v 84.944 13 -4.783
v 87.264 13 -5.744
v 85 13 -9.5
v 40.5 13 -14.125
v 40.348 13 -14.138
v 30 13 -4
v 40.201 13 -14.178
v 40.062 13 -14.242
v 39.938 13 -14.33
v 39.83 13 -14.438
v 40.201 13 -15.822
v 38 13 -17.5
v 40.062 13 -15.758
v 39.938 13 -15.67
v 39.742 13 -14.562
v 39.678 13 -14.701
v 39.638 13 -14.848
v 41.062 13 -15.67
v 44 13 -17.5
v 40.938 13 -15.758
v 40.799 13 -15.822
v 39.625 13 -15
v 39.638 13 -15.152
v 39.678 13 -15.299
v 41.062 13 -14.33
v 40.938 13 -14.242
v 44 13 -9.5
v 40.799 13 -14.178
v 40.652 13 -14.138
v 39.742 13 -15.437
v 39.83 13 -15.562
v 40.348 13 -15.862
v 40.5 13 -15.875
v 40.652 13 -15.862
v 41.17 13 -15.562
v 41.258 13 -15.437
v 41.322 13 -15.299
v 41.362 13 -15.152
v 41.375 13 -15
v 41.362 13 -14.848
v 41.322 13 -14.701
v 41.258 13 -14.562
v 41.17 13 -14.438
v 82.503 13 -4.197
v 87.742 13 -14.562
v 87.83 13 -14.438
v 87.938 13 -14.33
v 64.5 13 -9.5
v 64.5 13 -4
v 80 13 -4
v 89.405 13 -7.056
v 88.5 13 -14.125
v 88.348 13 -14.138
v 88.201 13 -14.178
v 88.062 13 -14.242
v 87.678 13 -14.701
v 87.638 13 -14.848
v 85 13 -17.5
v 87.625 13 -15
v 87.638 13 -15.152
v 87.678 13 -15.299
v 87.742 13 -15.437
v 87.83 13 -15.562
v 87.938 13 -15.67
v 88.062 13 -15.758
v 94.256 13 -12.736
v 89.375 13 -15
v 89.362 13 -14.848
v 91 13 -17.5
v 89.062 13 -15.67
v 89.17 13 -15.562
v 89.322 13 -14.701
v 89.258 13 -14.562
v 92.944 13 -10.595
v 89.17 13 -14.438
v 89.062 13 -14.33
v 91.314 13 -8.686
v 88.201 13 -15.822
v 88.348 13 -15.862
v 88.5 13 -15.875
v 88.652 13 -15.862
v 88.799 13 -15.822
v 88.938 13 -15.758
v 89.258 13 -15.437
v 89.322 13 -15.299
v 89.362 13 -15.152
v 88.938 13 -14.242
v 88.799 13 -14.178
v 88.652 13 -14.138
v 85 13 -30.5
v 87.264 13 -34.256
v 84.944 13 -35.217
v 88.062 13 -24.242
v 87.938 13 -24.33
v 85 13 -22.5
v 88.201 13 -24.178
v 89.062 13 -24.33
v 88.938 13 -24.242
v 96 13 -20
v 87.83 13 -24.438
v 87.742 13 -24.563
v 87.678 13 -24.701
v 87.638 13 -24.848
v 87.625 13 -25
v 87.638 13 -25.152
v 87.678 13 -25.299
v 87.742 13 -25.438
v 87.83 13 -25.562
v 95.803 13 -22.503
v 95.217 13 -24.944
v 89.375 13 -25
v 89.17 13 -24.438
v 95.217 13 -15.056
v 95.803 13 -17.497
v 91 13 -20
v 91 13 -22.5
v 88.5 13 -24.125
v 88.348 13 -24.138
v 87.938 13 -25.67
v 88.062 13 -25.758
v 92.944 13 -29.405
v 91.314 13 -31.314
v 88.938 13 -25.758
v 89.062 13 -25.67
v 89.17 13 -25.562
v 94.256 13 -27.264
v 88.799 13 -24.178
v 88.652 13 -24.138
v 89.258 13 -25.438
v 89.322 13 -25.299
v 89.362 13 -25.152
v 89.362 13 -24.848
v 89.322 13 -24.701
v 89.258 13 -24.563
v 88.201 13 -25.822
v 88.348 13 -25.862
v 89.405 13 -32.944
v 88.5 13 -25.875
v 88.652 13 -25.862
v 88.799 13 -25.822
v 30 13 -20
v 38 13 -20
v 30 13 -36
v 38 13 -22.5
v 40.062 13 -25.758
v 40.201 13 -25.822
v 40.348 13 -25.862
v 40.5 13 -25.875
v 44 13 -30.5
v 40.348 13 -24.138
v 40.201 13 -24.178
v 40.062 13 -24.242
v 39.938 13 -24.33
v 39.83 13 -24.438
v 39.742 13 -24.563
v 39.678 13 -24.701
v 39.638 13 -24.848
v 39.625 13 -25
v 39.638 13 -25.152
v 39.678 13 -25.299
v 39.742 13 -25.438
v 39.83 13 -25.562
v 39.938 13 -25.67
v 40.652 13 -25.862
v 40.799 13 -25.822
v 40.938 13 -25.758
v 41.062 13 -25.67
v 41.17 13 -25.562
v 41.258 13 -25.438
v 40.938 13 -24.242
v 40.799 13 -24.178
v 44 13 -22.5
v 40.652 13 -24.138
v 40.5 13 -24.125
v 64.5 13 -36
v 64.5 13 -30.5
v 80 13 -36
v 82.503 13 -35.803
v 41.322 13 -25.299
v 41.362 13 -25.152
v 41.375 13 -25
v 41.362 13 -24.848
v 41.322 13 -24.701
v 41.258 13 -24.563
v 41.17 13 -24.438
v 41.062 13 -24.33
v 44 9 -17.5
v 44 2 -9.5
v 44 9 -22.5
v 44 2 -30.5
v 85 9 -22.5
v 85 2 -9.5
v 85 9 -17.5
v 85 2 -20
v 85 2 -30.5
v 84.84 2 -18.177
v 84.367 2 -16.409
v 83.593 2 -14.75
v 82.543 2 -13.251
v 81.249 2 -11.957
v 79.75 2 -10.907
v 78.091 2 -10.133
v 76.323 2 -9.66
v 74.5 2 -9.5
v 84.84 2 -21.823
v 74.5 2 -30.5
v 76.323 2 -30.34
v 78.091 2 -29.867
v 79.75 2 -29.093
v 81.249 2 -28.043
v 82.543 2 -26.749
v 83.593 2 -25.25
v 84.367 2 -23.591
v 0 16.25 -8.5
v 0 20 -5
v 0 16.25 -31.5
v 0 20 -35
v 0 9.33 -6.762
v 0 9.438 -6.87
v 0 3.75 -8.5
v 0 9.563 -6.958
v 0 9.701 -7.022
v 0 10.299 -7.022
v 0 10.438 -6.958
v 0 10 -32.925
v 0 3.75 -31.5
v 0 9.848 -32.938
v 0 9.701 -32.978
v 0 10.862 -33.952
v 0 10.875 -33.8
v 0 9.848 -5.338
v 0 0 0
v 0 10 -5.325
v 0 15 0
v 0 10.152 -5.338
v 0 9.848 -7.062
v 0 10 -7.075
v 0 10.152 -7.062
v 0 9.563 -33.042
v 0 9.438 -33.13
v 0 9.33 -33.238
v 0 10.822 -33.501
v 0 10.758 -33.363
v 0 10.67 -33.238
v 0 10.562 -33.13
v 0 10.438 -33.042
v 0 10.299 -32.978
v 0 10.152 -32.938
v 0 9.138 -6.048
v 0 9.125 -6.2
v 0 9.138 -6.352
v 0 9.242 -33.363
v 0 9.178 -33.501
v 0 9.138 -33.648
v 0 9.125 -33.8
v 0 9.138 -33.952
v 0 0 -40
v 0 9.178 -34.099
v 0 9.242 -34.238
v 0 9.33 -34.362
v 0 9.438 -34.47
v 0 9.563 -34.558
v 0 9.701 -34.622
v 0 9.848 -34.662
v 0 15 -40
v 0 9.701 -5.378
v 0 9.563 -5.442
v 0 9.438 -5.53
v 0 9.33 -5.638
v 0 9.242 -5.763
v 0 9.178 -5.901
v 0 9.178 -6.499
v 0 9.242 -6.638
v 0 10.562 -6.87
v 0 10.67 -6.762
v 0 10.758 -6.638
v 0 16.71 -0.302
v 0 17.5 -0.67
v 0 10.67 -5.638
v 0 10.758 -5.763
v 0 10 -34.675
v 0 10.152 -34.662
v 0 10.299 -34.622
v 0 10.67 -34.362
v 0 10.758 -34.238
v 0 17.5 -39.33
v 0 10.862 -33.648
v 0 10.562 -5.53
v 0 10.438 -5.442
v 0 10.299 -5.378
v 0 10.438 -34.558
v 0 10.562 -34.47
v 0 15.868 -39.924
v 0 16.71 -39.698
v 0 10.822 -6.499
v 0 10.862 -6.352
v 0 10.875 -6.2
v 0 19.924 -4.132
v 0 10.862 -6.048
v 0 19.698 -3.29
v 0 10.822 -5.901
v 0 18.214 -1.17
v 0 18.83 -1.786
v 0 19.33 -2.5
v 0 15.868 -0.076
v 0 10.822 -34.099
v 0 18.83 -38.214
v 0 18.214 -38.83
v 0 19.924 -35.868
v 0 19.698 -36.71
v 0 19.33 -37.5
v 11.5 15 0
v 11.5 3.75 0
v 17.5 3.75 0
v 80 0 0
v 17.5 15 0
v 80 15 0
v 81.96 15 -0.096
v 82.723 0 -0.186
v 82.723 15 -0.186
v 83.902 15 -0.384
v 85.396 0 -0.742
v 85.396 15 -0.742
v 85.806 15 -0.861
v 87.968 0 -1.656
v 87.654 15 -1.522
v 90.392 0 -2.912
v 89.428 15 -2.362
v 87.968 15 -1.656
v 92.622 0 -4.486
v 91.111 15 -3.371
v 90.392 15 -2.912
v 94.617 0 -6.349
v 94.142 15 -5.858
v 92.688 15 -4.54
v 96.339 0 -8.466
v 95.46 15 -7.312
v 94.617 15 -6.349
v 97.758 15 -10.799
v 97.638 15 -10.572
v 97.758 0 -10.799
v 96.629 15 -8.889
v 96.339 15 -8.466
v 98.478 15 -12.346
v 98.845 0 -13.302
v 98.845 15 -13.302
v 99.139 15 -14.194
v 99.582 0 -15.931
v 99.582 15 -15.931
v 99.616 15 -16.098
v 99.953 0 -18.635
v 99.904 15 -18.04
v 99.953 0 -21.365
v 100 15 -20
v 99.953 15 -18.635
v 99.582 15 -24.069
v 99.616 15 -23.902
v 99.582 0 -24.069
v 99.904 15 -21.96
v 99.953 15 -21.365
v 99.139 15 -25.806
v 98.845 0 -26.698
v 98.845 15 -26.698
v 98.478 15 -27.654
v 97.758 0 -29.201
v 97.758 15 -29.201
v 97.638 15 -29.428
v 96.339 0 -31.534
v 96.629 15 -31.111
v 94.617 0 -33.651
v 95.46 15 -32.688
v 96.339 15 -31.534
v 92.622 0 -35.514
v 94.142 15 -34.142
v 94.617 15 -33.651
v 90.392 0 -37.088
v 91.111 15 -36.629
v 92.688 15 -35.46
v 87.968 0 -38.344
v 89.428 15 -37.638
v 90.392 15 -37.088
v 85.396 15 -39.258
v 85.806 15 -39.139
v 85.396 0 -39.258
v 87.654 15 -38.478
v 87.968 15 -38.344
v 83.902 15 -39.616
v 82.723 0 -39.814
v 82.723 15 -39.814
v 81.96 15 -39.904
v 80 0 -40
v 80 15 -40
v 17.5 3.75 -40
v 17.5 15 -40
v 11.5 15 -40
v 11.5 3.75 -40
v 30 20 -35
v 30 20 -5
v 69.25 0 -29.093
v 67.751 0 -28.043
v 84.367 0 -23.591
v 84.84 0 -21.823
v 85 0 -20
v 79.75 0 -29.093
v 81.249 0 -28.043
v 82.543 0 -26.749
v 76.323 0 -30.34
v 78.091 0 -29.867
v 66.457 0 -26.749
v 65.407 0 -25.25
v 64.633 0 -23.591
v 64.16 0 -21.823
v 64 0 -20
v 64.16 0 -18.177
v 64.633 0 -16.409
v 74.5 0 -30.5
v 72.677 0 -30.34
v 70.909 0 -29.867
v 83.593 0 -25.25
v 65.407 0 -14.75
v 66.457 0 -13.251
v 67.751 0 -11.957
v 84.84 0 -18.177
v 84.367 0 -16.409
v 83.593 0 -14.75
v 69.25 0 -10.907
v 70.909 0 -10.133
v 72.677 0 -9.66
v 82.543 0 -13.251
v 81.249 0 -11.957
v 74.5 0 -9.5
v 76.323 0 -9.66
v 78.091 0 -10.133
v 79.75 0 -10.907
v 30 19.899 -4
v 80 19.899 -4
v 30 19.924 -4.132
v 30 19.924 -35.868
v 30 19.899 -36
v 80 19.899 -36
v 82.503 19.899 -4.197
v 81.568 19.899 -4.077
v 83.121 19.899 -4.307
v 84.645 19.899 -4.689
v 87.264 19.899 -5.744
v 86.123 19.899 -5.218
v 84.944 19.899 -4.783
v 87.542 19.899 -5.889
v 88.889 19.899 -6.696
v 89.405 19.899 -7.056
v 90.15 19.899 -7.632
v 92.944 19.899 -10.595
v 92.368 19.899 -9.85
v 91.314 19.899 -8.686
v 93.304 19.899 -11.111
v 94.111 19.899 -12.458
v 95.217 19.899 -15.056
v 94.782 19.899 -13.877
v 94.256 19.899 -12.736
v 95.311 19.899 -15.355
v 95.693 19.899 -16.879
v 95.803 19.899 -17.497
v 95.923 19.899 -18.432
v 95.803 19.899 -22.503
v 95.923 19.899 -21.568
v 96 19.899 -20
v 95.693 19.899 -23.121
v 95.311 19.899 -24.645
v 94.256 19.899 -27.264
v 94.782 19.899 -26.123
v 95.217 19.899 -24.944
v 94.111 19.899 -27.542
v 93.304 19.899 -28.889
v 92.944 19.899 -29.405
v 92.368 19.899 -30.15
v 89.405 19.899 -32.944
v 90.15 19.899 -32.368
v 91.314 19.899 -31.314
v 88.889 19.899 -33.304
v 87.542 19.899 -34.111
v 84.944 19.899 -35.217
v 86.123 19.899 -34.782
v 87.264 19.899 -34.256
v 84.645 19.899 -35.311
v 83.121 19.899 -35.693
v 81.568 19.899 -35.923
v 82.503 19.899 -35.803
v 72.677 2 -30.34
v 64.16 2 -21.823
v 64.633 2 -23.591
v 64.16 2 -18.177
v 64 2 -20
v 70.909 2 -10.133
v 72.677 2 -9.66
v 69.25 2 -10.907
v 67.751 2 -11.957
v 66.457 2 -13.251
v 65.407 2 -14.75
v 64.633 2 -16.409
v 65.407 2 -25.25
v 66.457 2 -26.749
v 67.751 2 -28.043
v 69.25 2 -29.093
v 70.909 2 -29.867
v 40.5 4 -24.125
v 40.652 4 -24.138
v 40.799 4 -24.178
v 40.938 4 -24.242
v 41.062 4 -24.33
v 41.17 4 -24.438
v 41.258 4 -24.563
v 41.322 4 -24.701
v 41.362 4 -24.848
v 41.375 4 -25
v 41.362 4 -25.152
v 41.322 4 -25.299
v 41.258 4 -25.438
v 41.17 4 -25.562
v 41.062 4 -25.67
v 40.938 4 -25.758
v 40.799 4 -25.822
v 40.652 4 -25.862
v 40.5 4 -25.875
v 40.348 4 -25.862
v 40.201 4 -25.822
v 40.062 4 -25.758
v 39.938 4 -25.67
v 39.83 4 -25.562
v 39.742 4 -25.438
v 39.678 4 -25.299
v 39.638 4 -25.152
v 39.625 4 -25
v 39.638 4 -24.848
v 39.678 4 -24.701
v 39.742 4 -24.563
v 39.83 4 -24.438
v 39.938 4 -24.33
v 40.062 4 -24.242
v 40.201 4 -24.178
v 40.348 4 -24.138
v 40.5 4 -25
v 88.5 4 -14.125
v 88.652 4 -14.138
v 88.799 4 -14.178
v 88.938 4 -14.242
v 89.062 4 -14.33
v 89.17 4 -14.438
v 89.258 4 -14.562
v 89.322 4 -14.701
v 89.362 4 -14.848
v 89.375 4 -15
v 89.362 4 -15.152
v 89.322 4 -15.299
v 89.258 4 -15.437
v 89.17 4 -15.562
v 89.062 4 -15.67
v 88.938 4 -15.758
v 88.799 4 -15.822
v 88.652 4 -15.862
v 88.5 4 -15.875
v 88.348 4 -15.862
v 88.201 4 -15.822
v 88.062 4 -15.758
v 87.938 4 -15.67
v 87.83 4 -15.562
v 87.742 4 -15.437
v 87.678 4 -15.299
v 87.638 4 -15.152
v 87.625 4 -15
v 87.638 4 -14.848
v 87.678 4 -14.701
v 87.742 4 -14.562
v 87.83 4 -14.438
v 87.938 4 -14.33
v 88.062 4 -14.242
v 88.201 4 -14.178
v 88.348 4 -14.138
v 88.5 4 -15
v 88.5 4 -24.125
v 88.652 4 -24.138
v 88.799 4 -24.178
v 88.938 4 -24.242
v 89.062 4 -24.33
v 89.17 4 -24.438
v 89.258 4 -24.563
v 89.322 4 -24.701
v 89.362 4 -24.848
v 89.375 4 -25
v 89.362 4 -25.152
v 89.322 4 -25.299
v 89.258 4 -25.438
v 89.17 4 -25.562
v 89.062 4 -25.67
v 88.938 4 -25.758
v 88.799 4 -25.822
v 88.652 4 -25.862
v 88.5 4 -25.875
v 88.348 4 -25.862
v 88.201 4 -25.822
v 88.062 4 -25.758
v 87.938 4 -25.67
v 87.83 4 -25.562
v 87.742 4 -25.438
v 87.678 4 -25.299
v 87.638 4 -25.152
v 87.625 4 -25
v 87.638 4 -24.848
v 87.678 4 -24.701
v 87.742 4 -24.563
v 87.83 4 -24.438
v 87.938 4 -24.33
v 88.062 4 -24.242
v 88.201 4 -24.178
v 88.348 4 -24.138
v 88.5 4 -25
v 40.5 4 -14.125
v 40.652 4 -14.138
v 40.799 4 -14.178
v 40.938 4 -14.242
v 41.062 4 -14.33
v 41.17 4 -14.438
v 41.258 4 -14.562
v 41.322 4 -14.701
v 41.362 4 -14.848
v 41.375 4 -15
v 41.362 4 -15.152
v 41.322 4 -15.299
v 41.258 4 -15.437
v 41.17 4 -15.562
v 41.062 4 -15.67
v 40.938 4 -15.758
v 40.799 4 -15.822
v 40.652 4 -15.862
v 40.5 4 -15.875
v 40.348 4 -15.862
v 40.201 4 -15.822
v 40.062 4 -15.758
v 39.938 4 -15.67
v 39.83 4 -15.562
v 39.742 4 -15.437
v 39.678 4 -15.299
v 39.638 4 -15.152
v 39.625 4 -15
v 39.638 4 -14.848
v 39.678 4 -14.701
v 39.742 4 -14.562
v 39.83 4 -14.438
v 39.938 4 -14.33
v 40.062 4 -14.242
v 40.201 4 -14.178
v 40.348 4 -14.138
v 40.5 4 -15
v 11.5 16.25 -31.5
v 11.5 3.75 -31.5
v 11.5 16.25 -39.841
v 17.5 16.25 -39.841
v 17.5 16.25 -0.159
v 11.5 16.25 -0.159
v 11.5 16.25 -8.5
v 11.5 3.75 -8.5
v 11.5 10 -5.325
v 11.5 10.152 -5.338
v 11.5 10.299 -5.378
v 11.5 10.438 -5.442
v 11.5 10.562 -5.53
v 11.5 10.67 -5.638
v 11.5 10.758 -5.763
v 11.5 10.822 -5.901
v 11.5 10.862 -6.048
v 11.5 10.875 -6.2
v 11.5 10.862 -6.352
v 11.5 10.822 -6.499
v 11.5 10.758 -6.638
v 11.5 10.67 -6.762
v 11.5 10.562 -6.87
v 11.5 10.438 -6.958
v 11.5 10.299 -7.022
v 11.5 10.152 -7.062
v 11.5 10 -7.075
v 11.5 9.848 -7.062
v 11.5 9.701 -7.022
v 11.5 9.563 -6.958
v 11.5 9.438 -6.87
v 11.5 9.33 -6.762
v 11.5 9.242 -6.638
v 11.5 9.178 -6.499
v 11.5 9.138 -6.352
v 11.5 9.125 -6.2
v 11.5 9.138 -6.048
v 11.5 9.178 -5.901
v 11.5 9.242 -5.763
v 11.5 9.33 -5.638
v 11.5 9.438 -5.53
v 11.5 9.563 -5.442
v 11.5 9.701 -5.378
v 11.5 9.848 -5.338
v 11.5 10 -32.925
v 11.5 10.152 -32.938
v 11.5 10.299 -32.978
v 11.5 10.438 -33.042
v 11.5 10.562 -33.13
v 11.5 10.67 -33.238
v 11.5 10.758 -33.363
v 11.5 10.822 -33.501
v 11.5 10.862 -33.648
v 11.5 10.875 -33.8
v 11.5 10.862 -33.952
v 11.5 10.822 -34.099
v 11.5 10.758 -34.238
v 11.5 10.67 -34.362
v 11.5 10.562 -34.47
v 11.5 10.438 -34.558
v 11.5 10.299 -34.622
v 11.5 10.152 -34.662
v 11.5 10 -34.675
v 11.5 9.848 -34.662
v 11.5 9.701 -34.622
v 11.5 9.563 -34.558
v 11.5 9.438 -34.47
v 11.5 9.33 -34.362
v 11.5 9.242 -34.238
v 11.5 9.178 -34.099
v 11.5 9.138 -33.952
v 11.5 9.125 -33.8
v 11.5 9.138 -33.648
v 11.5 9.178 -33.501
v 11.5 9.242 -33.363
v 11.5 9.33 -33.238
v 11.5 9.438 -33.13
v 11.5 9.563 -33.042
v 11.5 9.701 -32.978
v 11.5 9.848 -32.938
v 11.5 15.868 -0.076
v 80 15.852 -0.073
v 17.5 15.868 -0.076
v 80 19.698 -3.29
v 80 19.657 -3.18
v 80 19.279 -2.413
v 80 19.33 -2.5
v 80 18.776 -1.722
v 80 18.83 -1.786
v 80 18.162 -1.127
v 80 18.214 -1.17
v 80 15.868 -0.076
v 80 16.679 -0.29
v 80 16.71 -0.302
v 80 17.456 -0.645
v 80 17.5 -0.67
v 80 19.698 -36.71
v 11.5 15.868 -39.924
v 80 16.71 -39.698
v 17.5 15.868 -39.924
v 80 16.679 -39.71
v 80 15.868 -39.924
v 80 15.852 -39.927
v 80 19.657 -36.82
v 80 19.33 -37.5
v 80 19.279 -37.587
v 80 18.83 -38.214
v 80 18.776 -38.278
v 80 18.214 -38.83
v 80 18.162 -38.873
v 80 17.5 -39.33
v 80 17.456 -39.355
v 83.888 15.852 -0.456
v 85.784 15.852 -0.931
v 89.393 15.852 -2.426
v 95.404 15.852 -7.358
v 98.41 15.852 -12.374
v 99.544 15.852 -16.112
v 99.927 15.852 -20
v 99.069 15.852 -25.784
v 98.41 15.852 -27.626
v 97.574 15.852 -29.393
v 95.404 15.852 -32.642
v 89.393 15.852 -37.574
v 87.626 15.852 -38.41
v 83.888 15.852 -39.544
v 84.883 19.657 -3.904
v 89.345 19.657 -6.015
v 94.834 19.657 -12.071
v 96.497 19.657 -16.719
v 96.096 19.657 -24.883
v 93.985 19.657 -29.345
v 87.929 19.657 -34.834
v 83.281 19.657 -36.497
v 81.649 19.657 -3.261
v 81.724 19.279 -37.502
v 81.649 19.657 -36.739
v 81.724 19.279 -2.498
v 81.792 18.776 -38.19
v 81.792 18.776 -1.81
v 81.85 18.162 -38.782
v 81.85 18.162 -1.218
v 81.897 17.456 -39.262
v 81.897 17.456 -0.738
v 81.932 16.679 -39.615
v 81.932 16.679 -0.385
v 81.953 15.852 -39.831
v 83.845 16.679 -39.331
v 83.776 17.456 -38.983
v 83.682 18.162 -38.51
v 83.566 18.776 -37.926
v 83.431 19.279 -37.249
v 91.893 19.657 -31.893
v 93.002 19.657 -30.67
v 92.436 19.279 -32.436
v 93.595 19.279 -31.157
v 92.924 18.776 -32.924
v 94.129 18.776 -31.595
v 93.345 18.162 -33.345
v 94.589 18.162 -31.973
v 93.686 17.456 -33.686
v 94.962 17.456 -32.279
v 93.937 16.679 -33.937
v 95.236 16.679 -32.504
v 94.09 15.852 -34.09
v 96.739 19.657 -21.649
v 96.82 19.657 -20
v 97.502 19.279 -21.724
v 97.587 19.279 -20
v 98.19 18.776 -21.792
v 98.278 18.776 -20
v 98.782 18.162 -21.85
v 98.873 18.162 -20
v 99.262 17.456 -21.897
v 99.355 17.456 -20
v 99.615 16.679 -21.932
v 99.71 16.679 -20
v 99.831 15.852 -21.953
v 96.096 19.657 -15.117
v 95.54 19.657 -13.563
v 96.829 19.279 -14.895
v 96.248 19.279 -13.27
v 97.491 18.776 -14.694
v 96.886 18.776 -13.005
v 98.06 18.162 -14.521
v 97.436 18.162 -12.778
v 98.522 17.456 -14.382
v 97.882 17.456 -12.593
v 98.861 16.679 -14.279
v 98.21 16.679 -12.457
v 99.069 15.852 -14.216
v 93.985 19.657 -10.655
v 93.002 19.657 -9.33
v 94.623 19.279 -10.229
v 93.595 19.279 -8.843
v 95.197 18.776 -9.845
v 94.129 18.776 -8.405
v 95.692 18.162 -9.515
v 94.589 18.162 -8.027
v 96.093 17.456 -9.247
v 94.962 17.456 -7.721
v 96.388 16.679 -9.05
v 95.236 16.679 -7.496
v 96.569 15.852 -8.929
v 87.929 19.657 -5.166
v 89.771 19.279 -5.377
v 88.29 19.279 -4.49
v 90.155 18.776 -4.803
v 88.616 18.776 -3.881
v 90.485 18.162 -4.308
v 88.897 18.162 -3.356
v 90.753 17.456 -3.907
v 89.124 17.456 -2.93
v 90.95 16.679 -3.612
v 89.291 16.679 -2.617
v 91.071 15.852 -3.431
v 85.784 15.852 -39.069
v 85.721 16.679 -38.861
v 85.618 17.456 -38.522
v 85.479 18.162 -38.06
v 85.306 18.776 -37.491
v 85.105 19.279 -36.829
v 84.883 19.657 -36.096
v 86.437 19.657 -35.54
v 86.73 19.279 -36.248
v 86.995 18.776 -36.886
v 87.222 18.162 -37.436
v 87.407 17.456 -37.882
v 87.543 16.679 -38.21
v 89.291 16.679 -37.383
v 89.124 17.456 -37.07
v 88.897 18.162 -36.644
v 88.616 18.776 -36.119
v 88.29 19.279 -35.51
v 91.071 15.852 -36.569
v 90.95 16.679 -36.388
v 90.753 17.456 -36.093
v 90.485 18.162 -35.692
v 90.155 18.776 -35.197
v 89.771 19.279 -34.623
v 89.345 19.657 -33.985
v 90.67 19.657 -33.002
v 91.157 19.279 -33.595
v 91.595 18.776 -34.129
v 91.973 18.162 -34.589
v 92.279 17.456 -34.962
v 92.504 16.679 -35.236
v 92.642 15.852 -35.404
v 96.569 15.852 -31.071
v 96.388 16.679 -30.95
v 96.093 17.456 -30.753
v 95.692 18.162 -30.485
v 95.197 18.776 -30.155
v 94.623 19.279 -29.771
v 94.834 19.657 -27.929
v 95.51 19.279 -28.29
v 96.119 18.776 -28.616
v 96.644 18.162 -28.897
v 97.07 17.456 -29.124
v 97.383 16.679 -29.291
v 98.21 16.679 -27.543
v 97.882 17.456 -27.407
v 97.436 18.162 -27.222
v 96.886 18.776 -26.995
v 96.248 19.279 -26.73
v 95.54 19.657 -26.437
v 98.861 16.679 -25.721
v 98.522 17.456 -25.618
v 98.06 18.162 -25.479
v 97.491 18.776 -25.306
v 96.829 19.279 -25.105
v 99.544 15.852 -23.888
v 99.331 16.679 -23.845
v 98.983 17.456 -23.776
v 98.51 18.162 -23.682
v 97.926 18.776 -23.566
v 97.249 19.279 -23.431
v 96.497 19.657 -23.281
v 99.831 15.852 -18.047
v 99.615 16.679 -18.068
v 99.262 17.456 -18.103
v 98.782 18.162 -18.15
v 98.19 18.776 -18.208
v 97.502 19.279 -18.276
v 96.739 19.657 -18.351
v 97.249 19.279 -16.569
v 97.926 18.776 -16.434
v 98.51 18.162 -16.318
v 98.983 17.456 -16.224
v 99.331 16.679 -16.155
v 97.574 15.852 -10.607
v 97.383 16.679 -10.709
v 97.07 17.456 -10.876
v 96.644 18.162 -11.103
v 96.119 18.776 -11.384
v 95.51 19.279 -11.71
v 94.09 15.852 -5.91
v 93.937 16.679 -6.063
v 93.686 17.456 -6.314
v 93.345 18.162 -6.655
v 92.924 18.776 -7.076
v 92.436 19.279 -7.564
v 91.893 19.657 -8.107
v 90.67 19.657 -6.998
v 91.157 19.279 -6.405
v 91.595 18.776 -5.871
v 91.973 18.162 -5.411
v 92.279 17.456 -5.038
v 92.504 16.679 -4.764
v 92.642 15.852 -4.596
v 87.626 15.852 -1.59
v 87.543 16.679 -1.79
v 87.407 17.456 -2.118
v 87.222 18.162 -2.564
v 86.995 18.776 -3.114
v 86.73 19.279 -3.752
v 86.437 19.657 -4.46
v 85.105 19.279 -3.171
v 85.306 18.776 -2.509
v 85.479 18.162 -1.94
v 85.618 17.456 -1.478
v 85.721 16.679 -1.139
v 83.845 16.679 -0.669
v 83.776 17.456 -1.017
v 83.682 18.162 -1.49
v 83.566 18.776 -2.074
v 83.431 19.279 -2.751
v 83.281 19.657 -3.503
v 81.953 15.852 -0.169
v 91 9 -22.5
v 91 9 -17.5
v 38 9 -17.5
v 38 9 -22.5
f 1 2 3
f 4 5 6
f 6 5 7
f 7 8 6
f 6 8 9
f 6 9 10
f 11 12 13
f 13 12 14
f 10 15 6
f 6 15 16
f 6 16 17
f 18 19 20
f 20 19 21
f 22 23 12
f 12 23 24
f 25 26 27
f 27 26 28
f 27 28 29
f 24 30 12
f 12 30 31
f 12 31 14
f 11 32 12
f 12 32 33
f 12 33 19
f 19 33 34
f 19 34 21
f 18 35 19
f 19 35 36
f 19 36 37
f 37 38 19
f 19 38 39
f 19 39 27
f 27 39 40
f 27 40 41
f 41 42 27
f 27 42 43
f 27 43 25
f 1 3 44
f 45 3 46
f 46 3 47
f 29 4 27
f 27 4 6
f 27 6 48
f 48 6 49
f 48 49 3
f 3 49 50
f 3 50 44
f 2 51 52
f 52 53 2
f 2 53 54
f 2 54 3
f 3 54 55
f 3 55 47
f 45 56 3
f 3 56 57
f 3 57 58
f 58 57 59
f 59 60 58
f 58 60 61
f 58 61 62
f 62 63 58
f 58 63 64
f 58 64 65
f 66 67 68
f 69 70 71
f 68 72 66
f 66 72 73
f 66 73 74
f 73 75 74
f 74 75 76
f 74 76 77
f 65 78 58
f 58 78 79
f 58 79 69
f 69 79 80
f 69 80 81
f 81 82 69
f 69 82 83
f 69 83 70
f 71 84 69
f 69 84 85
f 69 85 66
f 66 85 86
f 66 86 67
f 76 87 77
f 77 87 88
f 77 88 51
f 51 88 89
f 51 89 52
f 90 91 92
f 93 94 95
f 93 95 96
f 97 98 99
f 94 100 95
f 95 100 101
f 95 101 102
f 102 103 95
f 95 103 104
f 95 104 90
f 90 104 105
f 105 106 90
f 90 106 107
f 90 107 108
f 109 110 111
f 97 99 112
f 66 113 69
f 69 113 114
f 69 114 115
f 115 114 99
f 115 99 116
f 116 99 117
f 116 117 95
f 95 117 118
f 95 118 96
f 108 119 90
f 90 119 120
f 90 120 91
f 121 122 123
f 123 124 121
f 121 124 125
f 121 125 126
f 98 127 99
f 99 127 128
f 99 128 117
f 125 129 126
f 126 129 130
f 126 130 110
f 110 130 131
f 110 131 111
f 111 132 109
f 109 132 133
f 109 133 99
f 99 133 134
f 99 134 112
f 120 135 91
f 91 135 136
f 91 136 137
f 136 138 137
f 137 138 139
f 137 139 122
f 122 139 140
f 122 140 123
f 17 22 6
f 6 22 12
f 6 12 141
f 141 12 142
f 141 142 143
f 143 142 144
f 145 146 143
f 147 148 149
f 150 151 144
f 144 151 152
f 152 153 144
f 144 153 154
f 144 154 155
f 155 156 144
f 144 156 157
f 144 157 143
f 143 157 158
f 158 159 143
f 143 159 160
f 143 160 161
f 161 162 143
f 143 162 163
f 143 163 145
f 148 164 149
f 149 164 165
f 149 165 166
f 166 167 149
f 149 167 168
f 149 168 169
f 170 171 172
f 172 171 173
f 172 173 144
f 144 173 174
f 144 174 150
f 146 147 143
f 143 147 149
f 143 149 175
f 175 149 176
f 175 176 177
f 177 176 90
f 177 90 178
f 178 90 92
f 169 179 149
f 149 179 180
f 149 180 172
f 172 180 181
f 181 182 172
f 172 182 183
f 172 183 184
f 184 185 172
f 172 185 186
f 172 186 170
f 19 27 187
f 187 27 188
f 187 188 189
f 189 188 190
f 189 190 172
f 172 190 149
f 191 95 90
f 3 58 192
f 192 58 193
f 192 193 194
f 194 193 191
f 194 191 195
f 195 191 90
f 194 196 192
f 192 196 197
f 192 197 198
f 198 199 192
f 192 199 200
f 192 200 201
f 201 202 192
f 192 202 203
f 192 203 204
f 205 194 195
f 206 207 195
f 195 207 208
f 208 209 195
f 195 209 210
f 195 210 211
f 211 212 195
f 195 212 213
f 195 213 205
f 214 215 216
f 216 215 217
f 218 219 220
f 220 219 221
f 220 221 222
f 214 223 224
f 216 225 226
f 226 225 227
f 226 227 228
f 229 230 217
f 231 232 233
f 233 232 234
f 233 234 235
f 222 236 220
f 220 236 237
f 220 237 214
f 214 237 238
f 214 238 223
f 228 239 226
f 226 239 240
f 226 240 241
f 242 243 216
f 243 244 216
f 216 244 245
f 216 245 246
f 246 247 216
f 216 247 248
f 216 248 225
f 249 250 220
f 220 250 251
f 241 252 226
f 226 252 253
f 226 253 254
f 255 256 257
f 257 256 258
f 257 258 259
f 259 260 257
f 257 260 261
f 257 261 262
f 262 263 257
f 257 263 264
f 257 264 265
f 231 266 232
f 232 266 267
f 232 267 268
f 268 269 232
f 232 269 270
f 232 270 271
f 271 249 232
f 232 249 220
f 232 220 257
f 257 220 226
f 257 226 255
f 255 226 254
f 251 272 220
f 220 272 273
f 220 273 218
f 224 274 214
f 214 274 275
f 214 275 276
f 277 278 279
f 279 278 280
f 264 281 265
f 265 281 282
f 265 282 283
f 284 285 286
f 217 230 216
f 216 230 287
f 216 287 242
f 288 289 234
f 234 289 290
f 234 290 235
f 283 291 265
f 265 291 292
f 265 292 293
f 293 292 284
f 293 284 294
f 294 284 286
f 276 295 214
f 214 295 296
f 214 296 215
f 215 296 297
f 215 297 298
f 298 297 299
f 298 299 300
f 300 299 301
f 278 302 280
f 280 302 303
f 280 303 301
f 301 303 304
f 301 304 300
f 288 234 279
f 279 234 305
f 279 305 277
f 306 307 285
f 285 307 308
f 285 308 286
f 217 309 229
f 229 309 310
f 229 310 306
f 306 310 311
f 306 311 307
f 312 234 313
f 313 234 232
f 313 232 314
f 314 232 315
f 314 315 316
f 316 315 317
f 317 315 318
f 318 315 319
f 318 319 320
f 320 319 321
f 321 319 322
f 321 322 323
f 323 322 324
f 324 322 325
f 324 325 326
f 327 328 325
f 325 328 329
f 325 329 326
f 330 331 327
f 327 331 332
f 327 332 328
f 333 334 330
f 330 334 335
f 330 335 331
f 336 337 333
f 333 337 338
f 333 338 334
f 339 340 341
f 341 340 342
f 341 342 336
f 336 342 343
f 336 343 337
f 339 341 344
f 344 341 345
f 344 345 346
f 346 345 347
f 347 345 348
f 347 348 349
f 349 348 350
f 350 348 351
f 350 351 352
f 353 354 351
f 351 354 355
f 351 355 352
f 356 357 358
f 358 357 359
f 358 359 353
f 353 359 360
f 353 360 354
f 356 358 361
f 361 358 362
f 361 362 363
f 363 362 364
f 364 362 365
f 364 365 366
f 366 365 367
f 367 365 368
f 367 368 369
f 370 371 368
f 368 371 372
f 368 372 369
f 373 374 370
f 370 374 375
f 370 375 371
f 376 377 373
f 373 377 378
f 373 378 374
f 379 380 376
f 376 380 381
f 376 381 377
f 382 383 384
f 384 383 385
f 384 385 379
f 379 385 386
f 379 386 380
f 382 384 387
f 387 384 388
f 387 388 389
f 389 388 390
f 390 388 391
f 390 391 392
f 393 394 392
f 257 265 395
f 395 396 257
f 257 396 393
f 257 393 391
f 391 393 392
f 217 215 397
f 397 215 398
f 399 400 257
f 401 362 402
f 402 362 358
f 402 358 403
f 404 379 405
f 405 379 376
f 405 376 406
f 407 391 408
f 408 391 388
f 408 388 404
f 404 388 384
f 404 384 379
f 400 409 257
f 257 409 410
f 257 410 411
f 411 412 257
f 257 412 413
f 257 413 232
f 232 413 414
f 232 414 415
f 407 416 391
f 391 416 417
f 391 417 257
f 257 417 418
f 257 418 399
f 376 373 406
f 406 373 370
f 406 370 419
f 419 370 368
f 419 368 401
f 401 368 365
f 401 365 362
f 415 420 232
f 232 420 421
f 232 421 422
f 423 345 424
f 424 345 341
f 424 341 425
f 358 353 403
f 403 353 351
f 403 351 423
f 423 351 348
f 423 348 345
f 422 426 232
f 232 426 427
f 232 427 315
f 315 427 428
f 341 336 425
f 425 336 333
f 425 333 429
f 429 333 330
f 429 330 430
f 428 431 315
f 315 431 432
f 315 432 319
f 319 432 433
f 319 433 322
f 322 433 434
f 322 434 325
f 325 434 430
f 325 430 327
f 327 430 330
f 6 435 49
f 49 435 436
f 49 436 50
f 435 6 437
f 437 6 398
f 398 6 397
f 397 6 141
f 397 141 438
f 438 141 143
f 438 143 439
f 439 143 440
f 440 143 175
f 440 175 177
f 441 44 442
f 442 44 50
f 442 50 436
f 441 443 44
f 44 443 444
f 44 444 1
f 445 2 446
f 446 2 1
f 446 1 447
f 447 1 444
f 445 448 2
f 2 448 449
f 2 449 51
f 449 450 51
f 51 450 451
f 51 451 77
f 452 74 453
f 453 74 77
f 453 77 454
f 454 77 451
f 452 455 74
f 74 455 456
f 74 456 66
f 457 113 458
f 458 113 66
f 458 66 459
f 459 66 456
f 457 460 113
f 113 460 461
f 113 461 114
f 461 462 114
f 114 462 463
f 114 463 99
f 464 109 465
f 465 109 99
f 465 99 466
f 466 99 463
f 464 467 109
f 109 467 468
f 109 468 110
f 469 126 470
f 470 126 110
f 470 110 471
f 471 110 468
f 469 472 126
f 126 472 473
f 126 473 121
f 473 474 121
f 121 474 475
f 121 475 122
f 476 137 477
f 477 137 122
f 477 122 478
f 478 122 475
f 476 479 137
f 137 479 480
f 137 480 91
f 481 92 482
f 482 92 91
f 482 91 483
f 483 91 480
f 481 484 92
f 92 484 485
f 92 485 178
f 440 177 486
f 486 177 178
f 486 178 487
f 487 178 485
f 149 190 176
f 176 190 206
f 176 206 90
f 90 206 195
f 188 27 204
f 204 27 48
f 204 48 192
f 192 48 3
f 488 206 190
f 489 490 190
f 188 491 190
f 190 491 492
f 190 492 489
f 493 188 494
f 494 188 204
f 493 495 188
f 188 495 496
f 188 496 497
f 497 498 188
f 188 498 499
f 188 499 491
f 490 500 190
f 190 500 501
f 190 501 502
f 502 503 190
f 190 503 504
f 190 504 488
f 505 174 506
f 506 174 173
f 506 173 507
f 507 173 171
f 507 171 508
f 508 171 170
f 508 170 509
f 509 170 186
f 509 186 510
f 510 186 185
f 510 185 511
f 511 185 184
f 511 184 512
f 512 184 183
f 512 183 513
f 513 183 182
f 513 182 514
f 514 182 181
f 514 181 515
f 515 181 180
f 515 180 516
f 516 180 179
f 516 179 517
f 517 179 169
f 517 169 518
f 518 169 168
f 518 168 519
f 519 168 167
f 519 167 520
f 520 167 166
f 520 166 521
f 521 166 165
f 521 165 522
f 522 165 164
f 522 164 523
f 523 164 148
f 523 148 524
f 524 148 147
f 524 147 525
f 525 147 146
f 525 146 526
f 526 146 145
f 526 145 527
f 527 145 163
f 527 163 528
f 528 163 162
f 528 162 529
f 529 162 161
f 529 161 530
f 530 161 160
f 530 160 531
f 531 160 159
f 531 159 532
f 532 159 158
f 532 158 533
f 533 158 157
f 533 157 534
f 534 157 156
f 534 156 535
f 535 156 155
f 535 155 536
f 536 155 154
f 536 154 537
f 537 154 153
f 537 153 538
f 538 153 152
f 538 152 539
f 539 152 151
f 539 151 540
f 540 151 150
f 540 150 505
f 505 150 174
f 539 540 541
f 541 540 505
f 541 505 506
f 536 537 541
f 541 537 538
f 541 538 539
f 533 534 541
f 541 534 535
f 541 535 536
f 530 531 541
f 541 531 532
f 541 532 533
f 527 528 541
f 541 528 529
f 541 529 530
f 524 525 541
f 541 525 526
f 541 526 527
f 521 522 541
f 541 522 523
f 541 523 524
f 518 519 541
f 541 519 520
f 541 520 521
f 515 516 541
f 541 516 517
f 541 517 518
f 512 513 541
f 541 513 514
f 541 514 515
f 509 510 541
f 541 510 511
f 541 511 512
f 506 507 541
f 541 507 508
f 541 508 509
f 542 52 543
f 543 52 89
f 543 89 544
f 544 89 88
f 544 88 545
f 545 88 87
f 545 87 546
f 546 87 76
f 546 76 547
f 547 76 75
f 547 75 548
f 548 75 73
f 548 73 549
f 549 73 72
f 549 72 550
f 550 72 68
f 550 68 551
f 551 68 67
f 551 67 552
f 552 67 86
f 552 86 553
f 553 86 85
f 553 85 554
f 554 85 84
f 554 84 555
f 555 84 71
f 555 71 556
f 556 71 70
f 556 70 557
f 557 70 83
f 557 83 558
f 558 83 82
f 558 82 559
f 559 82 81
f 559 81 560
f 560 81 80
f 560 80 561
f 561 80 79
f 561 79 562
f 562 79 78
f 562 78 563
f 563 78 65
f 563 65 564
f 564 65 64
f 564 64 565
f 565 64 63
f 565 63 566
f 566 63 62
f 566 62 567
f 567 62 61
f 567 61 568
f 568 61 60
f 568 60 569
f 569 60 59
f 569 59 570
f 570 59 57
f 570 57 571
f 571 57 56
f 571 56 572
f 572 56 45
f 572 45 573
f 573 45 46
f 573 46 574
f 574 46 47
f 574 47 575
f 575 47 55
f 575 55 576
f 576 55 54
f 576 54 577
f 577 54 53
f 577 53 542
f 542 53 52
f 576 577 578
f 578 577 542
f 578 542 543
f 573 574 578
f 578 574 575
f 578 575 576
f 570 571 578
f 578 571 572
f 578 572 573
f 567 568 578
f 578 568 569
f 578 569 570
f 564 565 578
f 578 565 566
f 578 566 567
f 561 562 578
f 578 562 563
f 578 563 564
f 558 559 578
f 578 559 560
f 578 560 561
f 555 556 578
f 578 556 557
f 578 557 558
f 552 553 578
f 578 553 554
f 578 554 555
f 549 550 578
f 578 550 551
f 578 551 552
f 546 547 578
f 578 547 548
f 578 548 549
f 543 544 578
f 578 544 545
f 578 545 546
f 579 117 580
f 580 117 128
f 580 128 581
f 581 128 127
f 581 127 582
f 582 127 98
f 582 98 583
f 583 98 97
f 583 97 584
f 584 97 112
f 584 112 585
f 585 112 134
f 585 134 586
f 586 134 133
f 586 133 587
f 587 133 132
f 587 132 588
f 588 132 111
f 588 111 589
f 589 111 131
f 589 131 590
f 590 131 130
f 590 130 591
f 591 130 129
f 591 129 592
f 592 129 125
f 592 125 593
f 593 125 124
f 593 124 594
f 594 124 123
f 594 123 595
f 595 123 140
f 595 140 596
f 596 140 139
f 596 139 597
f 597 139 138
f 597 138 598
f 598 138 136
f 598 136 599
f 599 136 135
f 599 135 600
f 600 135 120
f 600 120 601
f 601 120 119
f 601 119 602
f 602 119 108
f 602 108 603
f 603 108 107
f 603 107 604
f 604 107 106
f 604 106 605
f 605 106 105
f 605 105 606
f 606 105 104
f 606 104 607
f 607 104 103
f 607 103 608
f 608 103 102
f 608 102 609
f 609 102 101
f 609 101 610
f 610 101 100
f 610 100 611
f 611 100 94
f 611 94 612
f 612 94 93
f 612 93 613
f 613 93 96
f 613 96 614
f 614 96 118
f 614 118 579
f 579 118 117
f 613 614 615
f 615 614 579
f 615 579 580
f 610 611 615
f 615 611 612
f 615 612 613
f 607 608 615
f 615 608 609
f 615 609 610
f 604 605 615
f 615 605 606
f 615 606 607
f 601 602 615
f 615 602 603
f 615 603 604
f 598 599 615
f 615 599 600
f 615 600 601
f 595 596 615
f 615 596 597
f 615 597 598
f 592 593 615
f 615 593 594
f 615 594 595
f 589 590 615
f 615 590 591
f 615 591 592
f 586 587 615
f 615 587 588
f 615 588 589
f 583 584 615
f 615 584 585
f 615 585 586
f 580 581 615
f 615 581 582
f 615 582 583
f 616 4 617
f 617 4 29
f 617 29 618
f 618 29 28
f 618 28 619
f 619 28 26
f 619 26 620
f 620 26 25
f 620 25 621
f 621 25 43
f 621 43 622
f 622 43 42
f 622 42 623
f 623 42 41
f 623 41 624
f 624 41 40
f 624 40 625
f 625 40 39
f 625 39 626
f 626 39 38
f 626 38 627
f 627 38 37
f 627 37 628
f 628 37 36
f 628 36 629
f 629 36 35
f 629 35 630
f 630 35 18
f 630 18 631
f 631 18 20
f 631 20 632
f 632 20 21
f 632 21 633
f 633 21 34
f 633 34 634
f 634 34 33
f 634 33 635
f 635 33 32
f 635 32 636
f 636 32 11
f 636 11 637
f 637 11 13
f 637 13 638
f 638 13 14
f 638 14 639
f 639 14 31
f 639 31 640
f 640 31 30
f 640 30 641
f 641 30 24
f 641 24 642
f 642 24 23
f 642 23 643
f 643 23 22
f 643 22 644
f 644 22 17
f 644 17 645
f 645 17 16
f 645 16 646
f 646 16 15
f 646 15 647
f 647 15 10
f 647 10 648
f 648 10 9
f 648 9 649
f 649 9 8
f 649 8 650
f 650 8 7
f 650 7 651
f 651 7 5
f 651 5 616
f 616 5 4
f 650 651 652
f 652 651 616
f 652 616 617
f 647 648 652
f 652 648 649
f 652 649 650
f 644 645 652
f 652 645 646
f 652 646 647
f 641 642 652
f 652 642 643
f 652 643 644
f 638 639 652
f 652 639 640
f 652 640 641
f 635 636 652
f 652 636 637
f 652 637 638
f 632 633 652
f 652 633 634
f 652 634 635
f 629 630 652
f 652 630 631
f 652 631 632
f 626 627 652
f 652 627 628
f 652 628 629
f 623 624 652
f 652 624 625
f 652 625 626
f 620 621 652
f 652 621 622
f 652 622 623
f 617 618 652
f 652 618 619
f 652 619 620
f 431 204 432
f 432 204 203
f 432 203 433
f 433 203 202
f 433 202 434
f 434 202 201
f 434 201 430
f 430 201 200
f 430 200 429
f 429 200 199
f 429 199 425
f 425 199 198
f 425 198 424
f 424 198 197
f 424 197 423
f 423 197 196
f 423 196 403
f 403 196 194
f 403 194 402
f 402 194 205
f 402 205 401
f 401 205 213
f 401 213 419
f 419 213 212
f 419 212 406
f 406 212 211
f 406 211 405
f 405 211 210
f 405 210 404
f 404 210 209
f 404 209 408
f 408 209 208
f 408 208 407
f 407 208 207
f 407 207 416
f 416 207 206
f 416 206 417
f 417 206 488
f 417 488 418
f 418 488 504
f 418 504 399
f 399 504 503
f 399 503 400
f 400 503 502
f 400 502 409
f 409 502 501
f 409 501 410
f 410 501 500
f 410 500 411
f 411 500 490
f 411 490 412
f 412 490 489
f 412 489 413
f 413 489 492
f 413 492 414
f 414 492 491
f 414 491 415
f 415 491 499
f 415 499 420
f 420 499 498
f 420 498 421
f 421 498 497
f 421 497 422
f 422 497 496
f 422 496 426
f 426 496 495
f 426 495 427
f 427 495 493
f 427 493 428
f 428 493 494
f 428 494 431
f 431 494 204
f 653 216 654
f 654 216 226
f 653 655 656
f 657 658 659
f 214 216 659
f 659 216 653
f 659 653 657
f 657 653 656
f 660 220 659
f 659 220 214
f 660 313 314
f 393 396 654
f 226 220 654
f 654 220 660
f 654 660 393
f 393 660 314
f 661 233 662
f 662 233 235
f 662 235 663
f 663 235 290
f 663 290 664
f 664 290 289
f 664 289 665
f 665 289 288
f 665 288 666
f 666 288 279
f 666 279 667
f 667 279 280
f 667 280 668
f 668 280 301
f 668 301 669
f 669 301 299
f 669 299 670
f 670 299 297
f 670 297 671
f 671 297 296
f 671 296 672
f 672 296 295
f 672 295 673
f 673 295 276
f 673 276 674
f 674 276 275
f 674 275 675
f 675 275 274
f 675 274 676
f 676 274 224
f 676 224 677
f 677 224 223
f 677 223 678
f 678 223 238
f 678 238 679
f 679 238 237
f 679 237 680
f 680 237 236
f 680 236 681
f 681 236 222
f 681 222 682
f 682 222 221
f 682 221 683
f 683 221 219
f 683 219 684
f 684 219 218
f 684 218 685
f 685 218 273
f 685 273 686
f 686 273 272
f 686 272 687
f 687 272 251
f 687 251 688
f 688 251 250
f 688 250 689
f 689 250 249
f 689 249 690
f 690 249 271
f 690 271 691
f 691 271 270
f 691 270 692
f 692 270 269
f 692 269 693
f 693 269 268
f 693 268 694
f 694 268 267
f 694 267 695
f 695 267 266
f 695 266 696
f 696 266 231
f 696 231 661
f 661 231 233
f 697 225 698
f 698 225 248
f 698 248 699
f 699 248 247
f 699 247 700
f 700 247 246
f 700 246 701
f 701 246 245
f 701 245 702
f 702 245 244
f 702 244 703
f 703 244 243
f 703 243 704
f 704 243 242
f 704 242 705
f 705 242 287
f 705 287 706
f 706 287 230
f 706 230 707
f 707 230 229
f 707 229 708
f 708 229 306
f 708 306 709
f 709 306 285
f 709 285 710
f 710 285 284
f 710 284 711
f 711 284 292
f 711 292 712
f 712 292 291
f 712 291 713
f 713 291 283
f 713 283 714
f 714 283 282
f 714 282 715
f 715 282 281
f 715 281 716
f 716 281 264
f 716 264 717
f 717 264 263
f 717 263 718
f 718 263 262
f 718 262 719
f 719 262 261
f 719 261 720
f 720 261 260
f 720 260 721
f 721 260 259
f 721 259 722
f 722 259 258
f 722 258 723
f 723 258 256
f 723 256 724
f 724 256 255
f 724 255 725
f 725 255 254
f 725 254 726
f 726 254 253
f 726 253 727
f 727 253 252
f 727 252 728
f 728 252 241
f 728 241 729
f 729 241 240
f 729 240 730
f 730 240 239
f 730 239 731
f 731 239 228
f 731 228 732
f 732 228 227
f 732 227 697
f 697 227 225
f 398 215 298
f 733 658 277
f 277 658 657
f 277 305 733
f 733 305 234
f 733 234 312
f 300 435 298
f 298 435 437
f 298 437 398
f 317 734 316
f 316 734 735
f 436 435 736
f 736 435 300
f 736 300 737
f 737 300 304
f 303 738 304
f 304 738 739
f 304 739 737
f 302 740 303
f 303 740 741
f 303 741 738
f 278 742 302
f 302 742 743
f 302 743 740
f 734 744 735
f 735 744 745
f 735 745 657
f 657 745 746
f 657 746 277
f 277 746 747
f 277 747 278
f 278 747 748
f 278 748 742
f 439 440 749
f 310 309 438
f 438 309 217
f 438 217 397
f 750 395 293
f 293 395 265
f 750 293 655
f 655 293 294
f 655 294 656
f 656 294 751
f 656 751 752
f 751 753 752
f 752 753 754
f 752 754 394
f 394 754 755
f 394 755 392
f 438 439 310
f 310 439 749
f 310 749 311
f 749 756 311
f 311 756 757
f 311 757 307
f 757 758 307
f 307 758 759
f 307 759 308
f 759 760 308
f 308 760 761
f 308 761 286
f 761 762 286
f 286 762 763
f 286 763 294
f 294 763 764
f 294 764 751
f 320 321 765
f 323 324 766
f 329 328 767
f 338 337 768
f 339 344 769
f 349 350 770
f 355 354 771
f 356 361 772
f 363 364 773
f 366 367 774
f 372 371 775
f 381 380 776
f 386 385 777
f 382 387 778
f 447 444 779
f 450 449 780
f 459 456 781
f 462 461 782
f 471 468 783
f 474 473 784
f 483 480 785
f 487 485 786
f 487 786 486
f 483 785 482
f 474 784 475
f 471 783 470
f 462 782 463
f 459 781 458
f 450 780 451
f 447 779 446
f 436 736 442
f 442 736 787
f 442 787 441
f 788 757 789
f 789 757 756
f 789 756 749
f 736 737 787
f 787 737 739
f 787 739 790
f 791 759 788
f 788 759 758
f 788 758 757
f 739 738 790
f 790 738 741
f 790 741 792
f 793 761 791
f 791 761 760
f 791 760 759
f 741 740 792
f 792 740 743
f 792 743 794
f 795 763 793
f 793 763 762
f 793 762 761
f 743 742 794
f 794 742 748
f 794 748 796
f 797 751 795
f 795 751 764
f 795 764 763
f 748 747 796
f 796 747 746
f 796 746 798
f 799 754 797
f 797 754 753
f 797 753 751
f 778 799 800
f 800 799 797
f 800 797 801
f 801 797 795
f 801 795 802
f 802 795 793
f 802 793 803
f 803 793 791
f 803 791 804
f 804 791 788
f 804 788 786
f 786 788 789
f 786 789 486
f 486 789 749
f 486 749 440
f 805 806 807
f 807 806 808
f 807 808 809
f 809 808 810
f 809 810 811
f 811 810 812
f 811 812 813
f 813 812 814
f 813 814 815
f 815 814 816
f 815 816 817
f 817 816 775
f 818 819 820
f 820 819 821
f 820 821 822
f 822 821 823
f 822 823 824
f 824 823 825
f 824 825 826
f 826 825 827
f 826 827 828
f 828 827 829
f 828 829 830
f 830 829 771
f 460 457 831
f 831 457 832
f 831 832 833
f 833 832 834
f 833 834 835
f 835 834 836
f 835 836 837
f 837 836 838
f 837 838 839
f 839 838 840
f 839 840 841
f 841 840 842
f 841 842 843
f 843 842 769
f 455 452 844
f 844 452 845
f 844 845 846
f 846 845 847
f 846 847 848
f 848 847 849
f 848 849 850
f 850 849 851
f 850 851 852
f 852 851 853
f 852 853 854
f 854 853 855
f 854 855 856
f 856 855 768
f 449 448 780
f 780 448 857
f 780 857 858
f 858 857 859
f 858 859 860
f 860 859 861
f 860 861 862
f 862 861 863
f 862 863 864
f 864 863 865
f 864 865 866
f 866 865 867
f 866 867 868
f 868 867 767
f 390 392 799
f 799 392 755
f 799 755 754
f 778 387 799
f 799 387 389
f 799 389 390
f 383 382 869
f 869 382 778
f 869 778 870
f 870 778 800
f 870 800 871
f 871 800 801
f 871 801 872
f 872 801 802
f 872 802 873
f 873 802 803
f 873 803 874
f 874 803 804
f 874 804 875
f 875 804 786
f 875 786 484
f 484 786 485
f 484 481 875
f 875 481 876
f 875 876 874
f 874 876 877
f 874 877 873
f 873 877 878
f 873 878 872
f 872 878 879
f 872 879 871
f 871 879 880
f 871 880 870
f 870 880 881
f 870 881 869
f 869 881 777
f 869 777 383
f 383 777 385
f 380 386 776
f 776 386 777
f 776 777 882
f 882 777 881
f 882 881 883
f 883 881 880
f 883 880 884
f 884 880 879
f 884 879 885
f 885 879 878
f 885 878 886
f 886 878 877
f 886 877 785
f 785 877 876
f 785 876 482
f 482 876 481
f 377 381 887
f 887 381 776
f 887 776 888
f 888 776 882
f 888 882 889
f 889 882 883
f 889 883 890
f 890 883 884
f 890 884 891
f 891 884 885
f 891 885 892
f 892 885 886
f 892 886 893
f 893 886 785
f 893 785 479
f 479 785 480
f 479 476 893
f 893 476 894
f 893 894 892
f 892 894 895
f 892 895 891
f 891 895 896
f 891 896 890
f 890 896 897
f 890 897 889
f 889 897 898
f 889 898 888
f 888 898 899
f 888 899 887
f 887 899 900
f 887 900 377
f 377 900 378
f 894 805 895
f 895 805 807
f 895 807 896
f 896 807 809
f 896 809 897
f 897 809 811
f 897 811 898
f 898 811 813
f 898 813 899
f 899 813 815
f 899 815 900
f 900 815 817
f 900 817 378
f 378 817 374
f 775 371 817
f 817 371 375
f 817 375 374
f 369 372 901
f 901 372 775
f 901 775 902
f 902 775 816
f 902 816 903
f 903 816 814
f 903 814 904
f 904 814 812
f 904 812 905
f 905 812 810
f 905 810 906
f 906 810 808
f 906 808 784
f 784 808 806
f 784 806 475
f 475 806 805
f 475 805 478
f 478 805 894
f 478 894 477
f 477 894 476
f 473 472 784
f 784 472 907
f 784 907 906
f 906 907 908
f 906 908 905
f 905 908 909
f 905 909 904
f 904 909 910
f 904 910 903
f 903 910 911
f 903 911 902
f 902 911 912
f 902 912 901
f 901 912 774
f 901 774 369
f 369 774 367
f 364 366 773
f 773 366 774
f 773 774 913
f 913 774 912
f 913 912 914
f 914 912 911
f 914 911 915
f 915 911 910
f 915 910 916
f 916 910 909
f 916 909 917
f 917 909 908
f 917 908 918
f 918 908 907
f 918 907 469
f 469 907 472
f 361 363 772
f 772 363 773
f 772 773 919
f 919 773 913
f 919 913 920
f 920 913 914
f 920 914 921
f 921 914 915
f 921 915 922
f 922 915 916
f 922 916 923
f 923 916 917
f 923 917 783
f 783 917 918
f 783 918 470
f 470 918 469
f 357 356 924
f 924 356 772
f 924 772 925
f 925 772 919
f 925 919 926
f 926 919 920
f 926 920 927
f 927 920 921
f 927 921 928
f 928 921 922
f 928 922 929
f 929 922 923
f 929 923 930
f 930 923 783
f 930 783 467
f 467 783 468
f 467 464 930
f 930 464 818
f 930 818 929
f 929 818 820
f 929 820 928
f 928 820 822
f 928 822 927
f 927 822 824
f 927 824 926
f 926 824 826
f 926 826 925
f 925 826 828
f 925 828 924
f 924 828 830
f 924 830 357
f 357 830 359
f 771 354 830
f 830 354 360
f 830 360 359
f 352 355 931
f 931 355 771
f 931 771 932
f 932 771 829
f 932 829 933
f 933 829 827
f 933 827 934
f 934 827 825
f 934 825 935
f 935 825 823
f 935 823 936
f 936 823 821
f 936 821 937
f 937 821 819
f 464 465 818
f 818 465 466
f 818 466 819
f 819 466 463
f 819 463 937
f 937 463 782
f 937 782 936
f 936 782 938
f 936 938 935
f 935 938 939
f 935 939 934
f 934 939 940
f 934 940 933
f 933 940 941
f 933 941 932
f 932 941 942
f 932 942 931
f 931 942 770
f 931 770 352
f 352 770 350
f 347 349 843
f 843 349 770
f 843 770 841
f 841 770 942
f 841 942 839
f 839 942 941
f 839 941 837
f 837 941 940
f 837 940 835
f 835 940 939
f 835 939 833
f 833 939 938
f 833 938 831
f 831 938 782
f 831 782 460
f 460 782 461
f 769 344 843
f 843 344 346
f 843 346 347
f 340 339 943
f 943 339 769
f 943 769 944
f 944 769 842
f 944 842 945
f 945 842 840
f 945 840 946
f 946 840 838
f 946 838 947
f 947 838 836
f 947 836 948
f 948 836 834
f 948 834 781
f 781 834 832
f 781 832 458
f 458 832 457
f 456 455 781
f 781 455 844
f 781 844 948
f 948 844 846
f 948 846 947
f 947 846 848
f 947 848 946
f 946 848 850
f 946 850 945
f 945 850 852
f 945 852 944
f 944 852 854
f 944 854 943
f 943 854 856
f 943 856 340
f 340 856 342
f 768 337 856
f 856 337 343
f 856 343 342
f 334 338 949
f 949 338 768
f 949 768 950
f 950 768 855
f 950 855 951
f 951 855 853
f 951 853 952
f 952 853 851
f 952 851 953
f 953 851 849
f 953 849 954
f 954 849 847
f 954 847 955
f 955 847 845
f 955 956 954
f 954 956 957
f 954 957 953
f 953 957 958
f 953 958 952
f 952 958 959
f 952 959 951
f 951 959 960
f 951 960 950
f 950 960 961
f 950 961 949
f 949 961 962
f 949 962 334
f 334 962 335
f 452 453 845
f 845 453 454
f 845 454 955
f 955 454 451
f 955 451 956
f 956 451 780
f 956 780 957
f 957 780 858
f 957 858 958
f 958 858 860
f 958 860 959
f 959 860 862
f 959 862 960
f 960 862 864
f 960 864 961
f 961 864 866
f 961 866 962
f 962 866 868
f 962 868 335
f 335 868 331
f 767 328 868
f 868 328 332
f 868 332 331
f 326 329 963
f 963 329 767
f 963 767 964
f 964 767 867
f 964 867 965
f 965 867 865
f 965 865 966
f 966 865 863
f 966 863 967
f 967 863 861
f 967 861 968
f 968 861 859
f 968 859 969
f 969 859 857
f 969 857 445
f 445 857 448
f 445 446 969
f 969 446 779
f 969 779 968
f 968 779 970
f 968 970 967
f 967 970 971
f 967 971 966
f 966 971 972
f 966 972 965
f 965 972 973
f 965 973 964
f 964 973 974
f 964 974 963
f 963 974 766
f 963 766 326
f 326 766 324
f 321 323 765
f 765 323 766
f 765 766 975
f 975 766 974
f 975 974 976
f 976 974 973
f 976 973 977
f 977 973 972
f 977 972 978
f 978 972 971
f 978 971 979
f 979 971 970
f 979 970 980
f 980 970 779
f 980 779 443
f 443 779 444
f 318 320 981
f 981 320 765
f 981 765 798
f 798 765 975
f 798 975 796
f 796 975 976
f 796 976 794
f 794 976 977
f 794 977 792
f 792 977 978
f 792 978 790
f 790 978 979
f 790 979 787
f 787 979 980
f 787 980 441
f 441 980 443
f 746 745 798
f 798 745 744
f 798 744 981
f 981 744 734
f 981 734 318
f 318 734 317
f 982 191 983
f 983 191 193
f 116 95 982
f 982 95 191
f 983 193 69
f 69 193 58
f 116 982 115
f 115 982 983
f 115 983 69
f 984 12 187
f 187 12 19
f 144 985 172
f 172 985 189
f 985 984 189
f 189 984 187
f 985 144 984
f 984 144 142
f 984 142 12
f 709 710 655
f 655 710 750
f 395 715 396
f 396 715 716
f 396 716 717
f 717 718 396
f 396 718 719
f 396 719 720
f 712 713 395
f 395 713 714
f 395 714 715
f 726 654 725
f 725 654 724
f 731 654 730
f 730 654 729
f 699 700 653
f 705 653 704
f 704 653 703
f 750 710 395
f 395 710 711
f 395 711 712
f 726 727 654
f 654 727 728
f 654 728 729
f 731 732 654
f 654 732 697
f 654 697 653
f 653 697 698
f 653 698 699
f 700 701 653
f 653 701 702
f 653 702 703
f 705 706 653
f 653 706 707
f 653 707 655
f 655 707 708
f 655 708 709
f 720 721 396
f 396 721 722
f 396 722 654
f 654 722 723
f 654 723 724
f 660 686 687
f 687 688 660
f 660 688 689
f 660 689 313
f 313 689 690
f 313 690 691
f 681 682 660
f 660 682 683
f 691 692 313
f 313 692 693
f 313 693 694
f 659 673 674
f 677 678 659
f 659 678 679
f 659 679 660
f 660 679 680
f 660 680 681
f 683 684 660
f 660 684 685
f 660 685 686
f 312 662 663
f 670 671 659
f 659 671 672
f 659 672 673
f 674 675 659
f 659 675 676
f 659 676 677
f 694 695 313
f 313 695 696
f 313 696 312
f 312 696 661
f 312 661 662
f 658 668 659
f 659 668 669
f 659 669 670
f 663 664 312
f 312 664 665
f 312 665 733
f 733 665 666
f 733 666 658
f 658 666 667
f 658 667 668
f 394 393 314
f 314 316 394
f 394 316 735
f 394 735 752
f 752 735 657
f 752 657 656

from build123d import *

# Parameters (mm, degrees)
BOSS_EXTRUDE1_DEPTH     = 20
SKETCH2_R               = 0.875
SKETCH2_W               = 41
SKETCH2_H               = 21
CUT_EXTRUDE2_DEPTH      = 7
SKETCH2_7_W             = 41
SKETCH2_7_H             = 10
SKETCH2_7_H_2           = 5.5
CUT_EXTRUDE3_DEPTH      = 18
SKETCH2_8_R             = 0.875
CUT_EXTRUDE4_DEPTH      = 16
SKETCH5_R               = 10.5
CUT_EXTRUDE5_DEPTH      = 16
SKETCH6_R               = 0.875
SKETCH6_W               = 23
SKETCH6_H               = 12.5
CUT_EXTRUDE6_DEPTH      = 17.5
FILLET1_R               = 5
SKETCH7_W               = 6
SKETCH7_H               = 5
SKETCH7_H_2             = 2.5
CUT_EXTRUDE7_DEPTH      = 4
CUT_EXTRUDE8_DEPTH      = 107.73448365
CUT_EXTRUDE8_DEPTH_BACK = 107.73448365
SKETCH8_W               = 6
SKETCH8_H               = 12.5


with BuildPart() as part:
    # Sketch1 → Boss-Extrude1 (new body)
    with BuildSketch(Plane(origin=(0, 0, 0), x_dir=(1, 0, 0), z_dir=(0, 1, 0))):
        with BuildLine():
            Line((0, 40), (0, 0))
            Line((0, 0), (80, 0))
            ThreePointArc((80, 0), (100, 20), (80, 40))
            Line((80, 40), (0, 40))
        make_face()
    extrude(amount=BOSS_EXTRUDE1_DEPTH)

    # Sketch2 → Cut-Extrude2 (cut)
    with BuildSketch(Plane(origin=(0, 20, 0), x_dir=(1, 0, 0), z_dir=(0, 1, 0))):
        with BuildLine():
            Line((30, 36), (30, 4))
            Line((30, 4), (80, 4))
            ThreePointArc((80, 4), (96, 20), (80, 36))
            Line((80, 36), (30, 36))
        make_face()
        with Locations(Location((40.5, 25, 0), (0, 0, 270))):
            Circle(SKETCH2_R, mode=Mode.SUBTRACT)
        with Locations(Location((40.5, 15, 0), (0, 0, 270))):
            Circle(SKETCH2_R, mode=Mode.SUBTRACT)
        with Locations(Location((88.5, 25, 0), (0, 0, 270))):
            Circle(SKETCH2_R, mode=Mode.SUBTRACT)
        with Locations(Location((88.5, 15, 0), (0, 0, 270))):
            Circle(SKETCH2_R, mode=Mode.SUBTRACT)
        with Locations((64.5, 20)):
            Rectangle(SKETCH2_W, SKETCH2_H, mode=Mode.SUBTRACT)
    extrude(amount=-CUT_EXTRUDE2_DEPTH, mode=Mode.SUBTRACT)

    # Sketch2<7> → Cut-Extrude3 (cut)
    with BuildSketch(Plane(origin=(0, 20, 0), x_dir=(1, 0, 0), z_dir=(0, 1, 0))):
        with Locations((64.5, 20)):
            Rectangle(SKETCH2_7_W, SKETCH2_7_H)
        with Locations((64.5, 12.25)):
            Rectangle(SKETCH2_7_W, SKETCH2_7_H_2)
        with Locations((64.5, 27.75)):
            Rectangle(SKETCH2_7_W, SKETCH2_7_H_2)
    extrude(amount=-CUT_EXTRUDE3_DEPTH, mode=Mode.SUBTRACT)

    # Sketch2<8> → Cut-Extrude4 (cut)
    with BuildSketch(Plane(origin=(0, 20, 0), x_dir=(1, 0, 0), z_dir=(0, 1, 0))):
        with Locations(Location((40.5, 25, 0), (0, 0, 270))):
            Circle(SKETCH2_8_R)
        with Locations(Location((40.5, 15, 0), (0, 0, 270))):
            Circle(SKETCH2_8_R)
        with Locations(Location((88.5, 25, 0), (0, 0, 270))):
            Circle(SKETCH2_8_R)
        with Locations(Location((88.5, 15, 0), (0, 0, 270))):
            Circle(SKETCH2_8_R)
    extrude(amount=-CUT_EXTRUDE4_DEPTH, mode=Mode.SUBTRACT)

    # Sketch5 → Cut-Extrude5 (cut)
    with BuildSketch(Plane(origin=(0, 2, 0), x_dir=(1, 0, 0), z_dir=(0, 1, 0))):
        with Locations(Location((74.5, 20, 0), (0, 0, 270))):
            Circle(SKETCH5_R)
    extrude(amount=-CUT_EXTRUDE5_DEPTH, mode=Mode.SUBTRACT)

    # Sketch6 → Cut-Extrude6 (cut)
    with BuildSketch(Plane.ZY):
        with Locations((-6.2, 10)):
            Circle(SKETCH6_R)
        with Locations((-33.8, 10)):
            Circle(SKETCH6_R)
        with Locations((-20, 10)):
            Rectangle(SKETCH6_W, SKETCH6_H)
    extrude(amount=-CUT_EXTRUDE6_DEPTH, mode=Mode.SUBTRACT)

    # Fillet1
    # the kernel refuses this fillet: 5 mm, written as the material it takes off along each edge
    with BuildSketch(Plane(origin=(80, 20, -40), x_dir=(0, -1, 0), z_dir=(-1, 0, 0))) as fillet1_piece_1:
        with BuildLine():
            CenterArc((FILLET1_R, FILLET1_R), FILLET1_R, 180, 90)
            Line((0, FILLET1_R), (0, 0))
            Line((0, 0), (FILLET1_R, 0))
        make_face()
    extrude(amount=92.5, mode=Mode.SUBTRACT)
    with BuildSketch(Plane(origin=(-12.5, 20, 0), x_dir=(0, 0, -1), z_dir=(1, 0, 0))) as fillet1_piece_2:
        with BuildLine():
            CenterArc((FILLET1_R, -FILLET1_R), FILLET1_R, 90, 90)
            Line((0, -FILLET1_R), (0, 0))
            Line((0, 0), (FILLET1_R, 0))
        make_face()
    extrude(amount=92.5, mode=Mode.SUBTRACT)
    with BuildSketch(Plane(origin=(80, 20, -20), x_dir=(0, 0, 1), z_dir=(-1, 0, 0))) as fillet1_piece_3:
        with BuildLine():
            CenterArc((20 - FILLET1_R, -FILLET1_R), FILLET1_R, 0, 90)
            Line((20 - FILLET1_R, 0), (20, 0))
            Line((20, 0), (20, -FILLET1_R))
        make_face()
    revolve(axis=Axis((80, 20, -20), (0, 1, 0)), revolution_arc=180, mode=Mode.SUBTRACT)

    # Sketch7 → Cut-Extrude7 (cut)
    with BuildSketch(Plane(origin=(0, 13, 0), x_dir=(1, 0, 0), z_dir=(0, 1, 0))):
        Polygon((85, 17.5), (85, 20), (85, 22.5), (44, 22.5), (44, 17.5), align=None)
        with Locations((41, 20)):
            Rectangle(SKETCH7_W, SKETCH7_H)
        with Locations((88, 18.75)):
            Rectangle(SKETCH7_W, SKETCH7_H_2)
        with Locations((88, 21.25)):
            Rectangle(SKETCH7_W, SKETCH7_H_2)
    extrude(amount=-CUT_EXTRUDE7_DEPTH, mode=Mode.SUBTRACT)

    # Sketch8 → Cut-Extrude8 (cut, two sides: drawn at the far end of the back side and taken through both)
    with BuildSketch(Plane(origin=(0, 0, -8.5), x_dir=(-1, 0, 0), z_dir=(0, 0, -1)).offset(-CUT_EXTRUDE8_DEPTH_BACK)):
        with Locations((-14.5, 10)):
            Rectangle(SKETCH8_W, SKETCH8_H)
    extrude(amount=CUT_EXTRUDE8_DEPTH + CUT_EXTRUDE8_DEPTH_BACK, mode=Mode.SUBTRACT)


solid = part.part
